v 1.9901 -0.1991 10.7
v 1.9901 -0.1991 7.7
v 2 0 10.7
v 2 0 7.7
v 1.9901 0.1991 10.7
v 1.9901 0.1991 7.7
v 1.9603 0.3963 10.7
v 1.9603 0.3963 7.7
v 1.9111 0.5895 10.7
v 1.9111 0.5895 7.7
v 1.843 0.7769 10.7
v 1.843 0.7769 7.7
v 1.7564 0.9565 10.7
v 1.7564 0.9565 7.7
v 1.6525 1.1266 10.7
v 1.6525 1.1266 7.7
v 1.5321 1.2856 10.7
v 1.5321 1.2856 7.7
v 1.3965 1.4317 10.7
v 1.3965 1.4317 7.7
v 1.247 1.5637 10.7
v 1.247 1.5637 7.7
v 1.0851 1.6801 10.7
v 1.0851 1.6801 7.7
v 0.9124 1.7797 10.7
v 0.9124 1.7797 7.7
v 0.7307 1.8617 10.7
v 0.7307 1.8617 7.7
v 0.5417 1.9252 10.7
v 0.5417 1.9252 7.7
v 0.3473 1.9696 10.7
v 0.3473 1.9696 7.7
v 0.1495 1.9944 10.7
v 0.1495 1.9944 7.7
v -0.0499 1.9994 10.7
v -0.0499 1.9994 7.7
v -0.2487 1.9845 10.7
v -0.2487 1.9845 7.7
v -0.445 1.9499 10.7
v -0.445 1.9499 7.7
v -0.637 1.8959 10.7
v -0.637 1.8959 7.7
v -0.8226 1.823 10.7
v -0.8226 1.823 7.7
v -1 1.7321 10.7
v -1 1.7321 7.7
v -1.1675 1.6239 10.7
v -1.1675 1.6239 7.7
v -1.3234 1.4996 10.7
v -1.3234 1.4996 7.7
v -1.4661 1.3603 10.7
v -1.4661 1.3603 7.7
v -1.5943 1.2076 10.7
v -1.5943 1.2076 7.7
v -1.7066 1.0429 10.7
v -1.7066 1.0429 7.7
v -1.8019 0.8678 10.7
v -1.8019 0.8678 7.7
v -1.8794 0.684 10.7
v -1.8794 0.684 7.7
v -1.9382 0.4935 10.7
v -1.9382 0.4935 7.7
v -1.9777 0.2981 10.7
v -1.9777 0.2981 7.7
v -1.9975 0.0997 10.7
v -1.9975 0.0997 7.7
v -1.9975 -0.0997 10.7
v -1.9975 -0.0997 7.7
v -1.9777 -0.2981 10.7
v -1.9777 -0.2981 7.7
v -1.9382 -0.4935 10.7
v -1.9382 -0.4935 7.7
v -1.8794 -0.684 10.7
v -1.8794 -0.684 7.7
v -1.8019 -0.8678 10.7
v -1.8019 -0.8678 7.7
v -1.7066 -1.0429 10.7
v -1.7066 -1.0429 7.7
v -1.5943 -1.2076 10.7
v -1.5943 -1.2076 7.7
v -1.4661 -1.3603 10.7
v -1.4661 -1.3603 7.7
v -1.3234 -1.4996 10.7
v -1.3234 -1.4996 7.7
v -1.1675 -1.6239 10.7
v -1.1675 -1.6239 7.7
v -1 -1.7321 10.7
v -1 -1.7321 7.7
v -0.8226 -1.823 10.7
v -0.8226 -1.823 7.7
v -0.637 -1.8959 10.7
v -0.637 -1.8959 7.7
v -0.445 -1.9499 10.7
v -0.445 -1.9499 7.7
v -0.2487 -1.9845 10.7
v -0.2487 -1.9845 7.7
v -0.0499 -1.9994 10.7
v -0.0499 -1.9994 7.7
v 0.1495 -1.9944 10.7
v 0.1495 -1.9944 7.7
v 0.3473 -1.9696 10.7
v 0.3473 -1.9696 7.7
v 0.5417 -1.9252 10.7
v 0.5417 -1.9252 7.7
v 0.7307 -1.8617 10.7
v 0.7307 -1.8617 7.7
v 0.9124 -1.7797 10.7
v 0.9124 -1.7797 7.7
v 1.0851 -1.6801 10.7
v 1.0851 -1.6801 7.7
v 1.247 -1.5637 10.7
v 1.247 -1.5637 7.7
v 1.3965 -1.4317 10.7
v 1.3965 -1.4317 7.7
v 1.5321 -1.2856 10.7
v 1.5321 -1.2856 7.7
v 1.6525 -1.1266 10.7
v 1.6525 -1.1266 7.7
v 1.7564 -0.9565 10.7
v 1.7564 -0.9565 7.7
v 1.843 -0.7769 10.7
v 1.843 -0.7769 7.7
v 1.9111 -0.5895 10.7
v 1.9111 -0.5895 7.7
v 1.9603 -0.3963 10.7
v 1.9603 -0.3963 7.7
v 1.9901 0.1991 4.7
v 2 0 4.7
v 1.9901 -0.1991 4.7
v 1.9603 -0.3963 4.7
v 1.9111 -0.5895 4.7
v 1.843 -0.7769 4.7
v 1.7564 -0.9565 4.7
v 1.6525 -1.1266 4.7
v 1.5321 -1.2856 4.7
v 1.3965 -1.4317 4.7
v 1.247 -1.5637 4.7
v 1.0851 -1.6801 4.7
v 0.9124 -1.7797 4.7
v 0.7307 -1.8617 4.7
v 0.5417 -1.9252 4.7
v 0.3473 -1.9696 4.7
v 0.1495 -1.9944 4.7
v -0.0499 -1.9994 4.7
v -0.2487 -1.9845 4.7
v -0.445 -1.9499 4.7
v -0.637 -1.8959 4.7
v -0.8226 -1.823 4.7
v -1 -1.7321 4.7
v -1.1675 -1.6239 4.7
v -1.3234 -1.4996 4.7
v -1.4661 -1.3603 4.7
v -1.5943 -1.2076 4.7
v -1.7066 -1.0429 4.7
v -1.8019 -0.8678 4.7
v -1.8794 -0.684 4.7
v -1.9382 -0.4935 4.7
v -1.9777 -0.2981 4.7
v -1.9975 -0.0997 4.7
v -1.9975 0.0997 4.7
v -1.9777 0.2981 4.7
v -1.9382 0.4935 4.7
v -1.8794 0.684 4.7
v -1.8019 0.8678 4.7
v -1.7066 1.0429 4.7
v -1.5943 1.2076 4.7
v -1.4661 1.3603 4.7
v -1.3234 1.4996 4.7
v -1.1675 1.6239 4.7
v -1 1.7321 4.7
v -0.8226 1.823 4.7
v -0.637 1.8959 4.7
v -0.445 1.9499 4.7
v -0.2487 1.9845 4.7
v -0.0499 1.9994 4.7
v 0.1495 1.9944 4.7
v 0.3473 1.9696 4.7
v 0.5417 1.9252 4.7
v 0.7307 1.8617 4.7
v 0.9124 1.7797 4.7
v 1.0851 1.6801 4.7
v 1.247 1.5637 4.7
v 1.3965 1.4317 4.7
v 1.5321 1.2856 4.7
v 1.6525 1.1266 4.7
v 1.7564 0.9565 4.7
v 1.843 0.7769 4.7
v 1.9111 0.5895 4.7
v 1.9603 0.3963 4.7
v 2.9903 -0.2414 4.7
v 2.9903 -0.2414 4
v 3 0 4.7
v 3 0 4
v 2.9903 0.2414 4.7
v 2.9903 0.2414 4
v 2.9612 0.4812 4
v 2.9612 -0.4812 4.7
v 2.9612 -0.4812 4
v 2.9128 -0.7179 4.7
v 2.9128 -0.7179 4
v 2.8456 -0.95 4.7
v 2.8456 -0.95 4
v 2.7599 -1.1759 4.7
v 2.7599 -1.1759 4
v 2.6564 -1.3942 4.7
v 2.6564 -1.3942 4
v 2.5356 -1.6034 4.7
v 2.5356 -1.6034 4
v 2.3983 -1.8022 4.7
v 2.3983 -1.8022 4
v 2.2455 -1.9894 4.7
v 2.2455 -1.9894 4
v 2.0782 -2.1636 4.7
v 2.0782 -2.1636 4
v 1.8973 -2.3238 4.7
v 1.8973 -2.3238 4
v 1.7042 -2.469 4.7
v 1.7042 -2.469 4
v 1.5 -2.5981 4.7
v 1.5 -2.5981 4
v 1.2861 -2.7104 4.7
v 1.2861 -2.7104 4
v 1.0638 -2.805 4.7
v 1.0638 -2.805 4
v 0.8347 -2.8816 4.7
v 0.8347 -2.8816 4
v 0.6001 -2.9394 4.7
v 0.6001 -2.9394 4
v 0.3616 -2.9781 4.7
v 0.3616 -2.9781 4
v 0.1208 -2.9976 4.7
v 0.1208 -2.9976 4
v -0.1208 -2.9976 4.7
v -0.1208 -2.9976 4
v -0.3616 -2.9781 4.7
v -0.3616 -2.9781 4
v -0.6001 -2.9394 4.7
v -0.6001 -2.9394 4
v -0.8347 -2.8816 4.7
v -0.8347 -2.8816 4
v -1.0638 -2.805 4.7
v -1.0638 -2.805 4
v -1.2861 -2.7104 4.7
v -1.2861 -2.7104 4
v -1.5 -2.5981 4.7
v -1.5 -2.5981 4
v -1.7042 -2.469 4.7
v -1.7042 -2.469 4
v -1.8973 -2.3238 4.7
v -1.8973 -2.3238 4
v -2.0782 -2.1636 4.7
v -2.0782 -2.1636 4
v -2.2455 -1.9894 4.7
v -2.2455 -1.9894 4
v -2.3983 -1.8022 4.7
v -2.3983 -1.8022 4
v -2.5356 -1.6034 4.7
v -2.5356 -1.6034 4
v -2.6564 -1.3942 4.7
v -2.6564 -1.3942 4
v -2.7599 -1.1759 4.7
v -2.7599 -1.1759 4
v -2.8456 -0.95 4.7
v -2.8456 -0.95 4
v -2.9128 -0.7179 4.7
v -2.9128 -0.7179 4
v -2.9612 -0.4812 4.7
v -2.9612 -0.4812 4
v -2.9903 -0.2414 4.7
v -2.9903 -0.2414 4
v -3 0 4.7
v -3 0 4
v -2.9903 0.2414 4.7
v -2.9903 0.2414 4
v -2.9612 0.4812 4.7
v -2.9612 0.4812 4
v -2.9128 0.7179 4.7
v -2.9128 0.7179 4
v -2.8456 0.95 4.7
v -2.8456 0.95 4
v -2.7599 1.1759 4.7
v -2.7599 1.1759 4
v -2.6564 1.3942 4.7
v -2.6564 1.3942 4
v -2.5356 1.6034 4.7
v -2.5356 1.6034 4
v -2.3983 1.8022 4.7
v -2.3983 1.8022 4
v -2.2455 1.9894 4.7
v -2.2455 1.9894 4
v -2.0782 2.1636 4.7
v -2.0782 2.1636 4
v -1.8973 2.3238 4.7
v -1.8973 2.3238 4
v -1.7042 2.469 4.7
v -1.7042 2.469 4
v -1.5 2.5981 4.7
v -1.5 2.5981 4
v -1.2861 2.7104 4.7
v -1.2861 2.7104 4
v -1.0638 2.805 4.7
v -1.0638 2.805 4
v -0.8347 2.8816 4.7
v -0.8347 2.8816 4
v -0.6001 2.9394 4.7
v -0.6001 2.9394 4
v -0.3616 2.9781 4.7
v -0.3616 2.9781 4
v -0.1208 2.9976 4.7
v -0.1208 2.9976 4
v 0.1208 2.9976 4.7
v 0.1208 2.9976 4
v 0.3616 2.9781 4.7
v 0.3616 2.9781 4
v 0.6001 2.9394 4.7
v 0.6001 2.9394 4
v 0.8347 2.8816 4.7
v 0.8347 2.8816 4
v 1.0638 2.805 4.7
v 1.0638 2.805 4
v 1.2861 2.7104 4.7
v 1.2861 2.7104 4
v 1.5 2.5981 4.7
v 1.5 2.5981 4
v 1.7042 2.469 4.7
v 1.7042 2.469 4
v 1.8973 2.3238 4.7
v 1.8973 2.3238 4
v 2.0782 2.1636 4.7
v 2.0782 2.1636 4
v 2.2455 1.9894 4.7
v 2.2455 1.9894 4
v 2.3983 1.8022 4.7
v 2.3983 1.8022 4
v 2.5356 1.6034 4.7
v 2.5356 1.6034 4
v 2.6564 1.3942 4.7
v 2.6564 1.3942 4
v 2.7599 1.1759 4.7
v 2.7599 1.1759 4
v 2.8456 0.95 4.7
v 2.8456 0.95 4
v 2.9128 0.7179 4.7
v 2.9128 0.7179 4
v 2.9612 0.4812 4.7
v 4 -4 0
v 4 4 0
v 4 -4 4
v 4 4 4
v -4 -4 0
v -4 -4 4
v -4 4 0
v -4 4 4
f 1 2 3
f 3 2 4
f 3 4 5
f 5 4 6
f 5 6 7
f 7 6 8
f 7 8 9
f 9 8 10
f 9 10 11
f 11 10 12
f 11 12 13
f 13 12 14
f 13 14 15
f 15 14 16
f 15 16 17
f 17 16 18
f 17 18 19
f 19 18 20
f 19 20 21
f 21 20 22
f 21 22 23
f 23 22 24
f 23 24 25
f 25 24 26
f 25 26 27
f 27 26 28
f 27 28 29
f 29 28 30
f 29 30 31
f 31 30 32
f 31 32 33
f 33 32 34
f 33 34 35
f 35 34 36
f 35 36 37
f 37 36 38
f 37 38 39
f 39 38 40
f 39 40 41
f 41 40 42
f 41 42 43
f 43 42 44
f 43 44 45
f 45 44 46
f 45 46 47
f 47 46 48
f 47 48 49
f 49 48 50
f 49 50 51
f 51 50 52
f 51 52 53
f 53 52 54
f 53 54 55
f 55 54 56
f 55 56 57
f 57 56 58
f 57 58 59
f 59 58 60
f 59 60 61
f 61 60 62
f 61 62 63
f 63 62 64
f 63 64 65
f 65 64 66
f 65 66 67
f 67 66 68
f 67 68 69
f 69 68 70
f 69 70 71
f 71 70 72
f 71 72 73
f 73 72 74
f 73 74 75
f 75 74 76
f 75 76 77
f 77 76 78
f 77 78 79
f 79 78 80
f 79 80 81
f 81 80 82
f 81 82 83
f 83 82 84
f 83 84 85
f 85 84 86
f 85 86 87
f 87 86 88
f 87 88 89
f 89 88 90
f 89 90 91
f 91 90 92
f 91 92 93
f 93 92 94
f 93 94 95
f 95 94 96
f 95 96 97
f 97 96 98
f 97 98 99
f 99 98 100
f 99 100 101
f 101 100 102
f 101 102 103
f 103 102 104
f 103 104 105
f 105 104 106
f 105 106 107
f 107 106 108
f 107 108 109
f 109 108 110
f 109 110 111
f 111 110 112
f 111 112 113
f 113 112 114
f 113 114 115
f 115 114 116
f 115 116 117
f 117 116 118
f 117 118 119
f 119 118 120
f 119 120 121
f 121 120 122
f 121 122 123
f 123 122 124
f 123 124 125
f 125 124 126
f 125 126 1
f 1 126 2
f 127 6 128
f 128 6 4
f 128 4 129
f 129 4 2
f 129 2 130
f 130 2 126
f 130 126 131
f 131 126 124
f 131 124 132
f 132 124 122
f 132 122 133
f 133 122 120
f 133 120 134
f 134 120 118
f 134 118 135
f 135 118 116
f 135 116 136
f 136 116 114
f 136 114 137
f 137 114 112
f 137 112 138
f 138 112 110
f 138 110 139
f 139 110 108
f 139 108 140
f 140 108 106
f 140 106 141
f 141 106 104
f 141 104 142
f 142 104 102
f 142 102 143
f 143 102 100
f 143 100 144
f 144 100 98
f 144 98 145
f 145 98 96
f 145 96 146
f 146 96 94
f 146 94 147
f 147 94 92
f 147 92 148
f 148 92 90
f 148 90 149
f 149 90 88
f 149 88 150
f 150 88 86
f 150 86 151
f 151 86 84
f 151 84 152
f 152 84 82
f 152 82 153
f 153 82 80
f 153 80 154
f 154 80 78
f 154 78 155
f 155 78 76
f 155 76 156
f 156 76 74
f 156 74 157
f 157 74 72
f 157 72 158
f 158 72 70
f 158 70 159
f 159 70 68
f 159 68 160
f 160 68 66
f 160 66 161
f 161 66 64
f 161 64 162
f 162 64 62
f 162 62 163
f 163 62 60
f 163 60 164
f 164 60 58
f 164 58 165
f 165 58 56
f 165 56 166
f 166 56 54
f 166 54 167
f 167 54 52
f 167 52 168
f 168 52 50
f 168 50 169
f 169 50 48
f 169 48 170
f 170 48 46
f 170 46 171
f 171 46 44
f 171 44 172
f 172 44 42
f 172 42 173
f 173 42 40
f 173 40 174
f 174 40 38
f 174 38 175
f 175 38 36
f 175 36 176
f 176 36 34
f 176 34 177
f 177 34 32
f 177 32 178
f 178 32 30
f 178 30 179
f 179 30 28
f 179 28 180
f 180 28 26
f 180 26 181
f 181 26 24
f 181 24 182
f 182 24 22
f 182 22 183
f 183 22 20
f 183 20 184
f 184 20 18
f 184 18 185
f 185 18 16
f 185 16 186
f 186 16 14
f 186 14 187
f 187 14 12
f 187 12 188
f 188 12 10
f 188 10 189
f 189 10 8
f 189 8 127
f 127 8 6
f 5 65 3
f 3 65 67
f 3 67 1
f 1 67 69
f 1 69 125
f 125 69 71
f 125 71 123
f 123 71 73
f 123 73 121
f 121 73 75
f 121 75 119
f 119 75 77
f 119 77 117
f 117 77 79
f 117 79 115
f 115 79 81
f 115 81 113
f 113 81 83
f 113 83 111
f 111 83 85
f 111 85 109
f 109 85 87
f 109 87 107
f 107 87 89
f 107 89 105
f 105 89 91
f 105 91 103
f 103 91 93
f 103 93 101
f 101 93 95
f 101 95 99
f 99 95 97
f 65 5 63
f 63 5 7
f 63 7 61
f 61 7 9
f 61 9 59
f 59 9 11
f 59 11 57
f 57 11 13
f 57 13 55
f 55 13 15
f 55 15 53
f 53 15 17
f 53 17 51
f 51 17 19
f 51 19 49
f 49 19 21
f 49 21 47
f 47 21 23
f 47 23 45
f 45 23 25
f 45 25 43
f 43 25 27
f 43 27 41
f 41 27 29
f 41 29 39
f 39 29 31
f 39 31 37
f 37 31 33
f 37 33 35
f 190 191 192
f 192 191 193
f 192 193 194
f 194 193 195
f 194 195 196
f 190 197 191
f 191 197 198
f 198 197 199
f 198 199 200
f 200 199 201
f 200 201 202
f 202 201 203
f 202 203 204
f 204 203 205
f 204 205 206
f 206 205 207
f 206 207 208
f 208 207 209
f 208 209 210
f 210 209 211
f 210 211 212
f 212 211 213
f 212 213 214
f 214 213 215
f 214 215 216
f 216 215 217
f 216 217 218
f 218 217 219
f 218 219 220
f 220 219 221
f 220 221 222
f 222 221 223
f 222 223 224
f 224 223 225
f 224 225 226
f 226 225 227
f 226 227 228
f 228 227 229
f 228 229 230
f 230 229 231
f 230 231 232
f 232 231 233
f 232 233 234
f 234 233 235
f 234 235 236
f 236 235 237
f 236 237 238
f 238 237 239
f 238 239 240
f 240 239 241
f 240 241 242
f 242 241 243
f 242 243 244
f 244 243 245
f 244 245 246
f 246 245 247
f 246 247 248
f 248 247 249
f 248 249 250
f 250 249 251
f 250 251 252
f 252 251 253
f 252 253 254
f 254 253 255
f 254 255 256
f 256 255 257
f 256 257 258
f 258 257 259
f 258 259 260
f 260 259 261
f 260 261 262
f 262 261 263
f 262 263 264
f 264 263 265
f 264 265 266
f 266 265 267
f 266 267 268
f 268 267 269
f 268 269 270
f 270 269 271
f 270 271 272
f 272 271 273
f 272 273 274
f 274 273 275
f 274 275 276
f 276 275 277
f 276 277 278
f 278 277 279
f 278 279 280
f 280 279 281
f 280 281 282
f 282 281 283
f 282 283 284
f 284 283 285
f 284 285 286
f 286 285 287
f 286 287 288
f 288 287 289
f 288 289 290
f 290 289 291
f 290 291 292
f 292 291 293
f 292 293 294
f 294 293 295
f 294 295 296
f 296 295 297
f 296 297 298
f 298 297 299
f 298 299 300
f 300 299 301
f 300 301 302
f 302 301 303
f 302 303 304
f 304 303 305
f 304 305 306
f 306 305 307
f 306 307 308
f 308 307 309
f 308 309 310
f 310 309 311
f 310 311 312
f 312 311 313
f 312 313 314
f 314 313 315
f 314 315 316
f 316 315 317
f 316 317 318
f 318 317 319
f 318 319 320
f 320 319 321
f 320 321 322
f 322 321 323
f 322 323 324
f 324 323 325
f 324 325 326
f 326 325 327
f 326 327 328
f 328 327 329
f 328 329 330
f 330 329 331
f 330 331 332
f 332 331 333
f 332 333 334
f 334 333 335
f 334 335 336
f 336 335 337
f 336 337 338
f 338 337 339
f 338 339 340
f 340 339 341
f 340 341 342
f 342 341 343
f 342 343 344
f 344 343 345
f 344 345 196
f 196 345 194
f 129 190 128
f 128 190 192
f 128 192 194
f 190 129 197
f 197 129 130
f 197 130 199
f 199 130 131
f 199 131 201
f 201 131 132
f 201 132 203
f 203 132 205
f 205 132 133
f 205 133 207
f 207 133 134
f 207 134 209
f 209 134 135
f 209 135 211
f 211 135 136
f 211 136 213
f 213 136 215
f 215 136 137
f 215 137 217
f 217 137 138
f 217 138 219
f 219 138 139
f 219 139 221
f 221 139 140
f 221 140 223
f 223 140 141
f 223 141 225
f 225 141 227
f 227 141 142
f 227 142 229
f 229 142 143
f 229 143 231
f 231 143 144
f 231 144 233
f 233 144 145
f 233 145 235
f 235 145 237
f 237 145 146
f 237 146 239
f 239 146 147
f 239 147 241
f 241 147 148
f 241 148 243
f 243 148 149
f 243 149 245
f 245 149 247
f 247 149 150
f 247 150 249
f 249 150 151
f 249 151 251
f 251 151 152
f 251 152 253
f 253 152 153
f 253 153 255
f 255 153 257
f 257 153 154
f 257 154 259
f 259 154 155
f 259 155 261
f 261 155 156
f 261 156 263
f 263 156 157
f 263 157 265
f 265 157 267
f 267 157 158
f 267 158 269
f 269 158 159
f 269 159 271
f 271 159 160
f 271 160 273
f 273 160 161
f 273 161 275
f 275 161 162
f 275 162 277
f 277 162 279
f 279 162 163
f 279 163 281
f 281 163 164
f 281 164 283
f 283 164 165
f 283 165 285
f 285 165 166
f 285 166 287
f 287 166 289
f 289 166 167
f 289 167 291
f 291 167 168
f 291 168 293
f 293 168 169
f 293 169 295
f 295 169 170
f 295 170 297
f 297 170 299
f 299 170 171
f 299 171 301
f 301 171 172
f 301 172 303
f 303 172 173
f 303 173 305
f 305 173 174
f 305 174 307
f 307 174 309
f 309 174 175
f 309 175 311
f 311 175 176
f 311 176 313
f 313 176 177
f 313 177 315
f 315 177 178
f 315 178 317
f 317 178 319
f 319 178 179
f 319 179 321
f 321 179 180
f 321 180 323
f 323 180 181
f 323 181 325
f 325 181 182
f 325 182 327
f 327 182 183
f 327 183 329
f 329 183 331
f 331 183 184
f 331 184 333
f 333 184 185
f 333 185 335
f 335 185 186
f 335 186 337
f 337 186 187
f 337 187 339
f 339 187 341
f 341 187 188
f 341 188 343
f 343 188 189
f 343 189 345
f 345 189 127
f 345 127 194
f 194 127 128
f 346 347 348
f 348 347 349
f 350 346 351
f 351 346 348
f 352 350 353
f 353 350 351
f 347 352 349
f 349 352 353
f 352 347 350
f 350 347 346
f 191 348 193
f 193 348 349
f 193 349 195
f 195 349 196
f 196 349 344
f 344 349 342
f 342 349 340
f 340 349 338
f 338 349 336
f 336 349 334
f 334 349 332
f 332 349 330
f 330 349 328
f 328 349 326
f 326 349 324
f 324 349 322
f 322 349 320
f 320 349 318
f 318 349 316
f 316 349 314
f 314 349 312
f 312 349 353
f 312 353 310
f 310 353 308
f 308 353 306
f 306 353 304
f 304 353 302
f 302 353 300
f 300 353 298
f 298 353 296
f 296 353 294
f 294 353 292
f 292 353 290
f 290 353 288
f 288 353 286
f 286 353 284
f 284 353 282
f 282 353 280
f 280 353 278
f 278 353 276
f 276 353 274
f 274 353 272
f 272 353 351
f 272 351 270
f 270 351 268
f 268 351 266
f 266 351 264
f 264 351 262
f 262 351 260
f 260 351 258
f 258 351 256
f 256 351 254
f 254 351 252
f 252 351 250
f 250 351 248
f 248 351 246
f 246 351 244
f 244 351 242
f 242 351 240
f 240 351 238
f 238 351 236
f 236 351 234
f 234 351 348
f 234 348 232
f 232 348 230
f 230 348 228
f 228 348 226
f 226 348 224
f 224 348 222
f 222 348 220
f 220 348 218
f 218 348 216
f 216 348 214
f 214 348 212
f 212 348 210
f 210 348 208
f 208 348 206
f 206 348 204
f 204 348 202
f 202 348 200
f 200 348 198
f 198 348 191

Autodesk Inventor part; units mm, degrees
ref_plane "YZ Plane" through (0, 0, 0) normal (1, 0, 0) x (0, 1, 0)
ref_plane "XZ Plane" through (0, 0, 0) normal (0, 1, 0) x (-1, 0, 0)
ref_plane "XY Plane" through (0, 0, 0) normal (0, 0, 1) x (1, 0, 0)
sketch "Sketch1" plane through (0, 0, 0) normal (0, 0, 1) x (1, 0, 0)
  line L0 (-4, 4) -> (4, 4)
  line L1 (4, 4) -> (4, -4)
  line L2 (4, -4) -> (-4, -4)
  line L3 (-4, -4) -> (-4, 4)
  line L4 (-4, -4) -> (4, 4) construction
  point P0 (0, 0)
  point P1 (0, 0)
  dimension "d0" = 8
extrude "Extrusion1" add sketch "Sketch1" along normal blind 4
sketch "Sketch2" plane through (0, 0, 4) normal (0, 0, 1) x (1, 0, 0)
  circle A0 centre (0, 0) radius 3
  dimension "d3" = 6
extrude "Extrusion2" add sketch "Sketch2" along normal blind 0.7
sketch "Sketch3" plane through (0, 0, 4.7) normal (0, 0, 1) x (1, 0, 0)
  circle A0 centre (0, 0) radius 2
  dimension "d6" = 4
extrude "Extrusion3" add sketch "Sketch3" along normal blind 6
properties part number "Arm - forearm v2 3"
